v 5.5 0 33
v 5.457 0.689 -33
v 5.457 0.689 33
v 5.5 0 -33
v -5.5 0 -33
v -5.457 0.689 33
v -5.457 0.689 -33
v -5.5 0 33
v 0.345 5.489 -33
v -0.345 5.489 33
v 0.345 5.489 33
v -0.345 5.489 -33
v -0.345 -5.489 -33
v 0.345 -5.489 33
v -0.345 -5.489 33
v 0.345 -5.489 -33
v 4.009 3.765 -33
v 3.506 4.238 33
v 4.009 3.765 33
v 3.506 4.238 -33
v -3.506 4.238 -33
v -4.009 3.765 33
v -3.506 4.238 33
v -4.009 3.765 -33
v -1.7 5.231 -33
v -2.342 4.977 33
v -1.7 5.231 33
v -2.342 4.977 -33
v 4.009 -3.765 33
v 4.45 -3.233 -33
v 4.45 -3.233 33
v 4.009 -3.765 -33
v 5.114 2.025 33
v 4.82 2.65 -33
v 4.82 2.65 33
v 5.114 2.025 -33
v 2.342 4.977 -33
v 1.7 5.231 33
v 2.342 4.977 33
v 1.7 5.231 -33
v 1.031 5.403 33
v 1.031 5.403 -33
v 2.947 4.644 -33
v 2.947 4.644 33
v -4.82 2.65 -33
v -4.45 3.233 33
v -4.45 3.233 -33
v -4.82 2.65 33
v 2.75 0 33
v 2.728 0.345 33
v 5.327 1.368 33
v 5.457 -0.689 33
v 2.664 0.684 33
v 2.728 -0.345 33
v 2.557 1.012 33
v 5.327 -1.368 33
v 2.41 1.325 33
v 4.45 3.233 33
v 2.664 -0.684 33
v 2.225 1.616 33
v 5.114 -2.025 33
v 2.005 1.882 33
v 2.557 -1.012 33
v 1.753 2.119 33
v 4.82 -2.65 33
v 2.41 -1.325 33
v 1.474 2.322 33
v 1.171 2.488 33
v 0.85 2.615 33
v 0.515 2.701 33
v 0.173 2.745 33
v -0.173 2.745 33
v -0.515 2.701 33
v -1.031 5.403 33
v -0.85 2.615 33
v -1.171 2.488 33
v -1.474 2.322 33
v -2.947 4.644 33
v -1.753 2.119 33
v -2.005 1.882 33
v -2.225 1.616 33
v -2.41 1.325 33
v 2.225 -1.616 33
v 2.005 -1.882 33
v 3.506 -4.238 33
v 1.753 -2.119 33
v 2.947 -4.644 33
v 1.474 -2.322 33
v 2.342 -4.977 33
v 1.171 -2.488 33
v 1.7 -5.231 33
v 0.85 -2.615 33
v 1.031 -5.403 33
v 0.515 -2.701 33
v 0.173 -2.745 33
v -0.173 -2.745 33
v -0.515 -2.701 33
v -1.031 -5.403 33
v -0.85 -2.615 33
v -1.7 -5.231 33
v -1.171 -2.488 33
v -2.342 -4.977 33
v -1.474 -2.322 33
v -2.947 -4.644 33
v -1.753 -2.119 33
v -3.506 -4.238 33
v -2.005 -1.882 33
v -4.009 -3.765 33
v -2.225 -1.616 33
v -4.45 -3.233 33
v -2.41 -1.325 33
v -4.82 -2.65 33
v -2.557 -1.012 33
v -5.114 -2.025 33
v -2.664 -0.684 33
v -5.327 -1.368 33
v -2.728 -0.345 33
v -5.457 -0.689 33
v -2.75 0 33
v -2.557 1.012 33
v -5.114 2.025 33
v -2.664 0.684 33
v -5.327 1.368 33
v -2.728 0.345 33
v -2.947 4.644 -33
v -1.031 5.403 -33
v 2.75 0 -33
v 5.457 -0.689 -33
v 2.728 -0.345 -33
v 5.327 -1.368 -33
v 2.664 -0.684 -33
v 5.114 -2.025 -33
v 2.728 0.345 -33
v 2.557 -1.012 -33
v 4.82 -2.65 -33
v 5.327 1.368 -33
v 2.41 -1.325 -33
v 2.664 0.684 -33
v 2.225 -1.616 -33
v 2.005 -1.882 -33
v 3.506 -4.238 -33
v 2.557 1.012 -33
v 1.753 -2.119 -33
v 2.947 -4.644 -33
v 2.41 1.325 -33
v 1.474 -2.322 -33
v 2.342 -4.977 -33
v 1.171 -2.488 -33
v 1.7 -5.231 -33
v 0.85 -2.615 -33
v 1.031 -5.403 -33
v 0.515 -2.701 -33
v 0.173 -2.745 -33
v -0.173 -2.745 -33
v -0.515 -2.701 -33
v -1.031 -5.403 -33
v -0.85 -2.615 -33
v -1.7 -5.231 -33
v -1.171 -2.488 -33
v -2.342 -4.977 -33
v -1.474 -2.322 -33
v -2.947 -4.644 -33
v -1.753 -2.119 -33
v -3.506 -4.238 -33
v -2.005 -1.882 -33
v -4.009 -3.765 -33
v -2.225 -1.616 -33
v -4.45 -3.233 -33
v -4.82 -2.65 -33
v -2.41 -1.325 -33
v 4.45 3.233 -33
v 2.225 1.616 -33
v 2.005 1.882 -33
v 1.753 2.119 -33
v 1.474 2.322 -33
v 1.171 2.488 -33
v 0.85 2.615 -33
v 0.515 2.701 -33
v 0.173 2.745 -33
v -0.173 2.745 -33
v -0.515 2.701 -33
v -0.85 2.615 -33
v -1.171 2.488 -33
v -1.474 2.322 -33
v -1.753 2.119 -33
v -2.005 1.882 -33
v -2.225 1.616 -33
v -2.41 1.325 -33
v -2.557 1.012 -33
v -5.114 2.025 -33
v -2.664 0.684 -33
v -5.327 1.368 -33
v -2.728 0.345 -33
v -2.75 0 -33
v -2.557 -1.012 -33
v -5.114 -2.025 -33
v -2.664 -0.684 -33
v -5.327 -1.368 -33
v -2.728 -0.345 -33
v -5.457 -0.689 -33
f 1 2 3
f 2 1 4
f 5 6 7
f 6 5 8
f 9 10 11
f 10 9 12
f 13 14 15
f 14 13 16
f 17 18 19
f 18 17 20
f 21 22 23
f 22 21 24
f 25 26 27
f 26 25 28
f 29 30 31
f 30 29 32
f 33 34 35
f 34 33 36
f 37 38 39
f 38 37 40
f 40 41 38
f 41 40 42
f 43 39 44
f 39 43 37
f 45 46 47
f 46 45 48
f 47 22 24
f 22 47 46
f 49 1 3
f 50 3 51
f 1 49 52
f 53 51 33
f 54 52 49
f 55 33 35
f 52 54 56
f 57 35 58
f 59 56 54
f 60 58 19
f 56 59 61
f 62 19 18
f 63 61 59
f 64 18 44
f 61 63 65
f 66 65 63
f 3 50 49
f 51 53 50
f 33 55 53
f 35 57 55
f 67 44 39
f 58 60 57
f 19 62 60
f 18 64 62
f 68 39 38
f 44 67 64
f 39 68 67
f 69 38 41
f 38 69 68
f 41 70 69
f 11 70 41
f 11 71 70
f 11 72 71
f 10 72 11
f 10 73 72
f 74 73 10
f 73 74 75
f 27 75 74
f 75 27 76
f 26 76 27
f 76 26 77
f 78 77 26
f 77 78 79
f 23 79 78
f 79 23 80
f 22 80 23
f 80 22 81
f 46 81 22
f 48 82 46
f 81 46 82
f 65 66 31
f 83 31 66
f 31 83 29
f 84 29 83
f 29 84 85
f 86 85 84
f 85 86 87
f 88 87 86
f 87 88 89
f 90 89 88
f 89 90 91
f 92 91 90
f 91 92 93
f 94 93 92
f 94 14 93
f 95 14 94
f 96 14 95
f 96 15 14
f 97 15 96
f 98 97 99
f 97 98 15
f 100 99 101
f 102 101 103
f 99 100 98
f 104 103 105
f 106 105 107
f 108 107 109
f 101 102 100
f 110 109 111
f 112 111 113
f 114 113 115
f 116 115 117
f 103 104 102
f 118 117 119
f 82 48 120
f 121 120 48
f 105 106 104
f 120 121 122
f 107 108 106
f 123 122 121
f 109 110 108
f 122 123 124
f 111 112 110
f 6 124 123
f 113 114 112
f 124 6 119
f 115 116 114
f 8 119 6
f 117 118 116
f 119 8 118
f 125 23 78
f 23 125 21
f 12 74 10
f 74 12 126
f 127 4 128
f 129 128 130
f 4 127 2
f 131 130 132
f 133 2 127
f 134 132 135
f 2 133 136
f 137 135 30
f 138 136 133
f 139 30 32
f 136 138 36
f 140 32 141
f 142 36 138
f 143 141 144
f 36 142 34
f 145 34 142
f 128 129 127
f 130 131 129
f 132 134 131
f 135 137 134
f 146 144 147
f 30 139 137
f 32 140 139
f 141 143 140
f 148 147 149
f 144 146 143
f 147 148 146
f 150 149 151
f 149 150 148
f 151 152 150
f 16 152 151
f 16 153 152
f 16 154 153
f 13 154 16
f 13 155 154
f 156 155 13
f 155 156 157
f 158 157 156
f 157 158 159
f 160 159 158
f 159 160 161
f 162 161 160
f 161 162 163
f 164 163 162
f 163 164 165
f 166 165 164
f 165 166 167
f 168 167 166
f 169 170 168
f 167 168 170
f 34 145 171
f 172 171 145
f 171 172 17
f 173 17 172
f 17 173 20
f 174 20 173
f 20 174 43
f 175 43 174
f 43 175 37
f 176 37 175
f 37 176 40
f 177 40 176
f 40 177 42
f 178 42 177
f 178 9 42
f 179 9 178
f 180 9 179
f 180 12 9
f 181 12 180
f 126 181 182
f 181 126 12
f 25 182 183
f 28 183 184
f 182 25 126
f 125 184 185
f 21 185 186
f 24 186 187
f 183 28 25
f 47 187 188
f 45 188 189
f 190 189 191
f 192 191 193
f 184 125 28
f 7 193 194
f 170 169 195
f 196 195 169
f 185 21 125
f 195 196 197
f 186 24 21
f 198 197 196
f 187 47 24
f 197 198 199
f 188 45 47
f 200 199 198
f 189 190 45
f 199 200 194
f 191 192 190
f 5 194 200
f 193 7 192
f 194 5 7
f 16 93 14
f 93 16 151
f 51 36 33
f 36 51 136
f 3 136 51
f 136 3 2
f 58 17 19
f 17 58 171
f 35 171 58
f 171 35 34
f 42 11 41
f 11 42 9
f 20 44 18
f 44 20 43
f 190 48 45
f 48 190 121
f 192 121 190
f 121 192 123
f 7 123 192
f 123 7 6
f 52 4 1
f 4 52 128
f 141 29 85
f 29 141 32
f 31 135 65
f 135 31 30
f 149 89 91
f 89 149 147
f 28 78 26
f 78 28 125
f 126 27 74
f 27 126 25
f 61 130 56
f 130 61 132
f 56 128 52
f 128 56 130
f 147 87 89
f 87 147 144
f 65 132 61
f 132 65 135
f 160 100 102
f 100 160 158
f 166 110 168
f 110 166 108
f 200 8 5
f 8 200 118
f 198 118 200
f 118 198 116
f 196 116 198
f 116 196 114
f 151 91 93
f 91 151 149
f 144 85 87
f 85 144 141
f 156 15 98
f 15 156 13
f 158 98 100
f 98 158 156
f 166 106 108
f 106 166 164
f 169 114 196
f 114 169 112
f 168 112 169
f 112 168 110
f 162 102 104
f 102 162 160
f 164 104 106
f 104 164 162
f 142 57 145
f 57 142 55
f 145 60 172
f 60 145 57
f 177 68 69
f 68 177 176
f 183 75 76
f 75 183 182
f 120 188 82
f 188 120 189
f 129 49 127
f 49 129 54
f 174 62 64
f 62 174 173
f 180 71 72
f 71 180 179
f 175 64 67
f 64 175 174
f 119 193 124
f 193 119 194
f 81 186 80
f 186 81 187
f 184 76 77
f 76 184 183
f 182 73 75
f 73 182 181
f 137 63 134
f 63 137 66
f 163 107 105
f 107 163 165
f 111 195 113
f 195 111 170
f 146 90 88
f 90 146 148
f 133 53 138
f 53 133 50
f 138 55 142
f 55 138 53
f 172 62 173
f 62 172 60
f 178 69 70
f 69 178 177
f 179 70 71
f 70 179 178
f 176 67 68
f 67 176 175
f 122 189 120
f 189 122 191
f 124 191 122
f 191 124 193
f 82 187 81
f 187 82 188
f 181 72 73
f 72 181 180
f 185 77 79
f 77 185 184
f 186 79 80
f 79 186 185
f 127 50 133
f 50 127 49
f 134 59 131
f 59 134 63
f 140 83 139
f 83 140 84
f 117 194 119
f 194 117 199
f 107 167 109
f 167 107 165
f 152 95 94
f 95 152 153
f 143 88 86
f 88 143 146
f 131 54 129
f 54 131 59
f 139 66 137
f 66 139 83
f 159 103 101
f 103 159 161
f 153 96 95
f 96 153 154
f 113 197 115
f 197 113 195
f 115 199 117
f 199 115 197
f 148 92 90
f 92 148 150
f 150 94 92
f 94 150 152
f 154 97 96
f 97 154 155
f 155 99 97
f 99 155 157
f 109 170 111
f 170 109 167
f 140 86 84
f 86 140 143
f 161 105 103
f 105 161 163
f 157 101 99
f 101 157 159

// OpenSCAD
$fn = 50;


difference() {
	union() {
		translate(v = [0, 0, -33.0000000000]) {
			cylinder(h = 66, r = 5.5000000000);
		}
	}
	union() {
		translate(v = [0, 0, -100.0000000000]) {
			cylinder(h = 200, r = 2.7500000000);
		}
	}
}
